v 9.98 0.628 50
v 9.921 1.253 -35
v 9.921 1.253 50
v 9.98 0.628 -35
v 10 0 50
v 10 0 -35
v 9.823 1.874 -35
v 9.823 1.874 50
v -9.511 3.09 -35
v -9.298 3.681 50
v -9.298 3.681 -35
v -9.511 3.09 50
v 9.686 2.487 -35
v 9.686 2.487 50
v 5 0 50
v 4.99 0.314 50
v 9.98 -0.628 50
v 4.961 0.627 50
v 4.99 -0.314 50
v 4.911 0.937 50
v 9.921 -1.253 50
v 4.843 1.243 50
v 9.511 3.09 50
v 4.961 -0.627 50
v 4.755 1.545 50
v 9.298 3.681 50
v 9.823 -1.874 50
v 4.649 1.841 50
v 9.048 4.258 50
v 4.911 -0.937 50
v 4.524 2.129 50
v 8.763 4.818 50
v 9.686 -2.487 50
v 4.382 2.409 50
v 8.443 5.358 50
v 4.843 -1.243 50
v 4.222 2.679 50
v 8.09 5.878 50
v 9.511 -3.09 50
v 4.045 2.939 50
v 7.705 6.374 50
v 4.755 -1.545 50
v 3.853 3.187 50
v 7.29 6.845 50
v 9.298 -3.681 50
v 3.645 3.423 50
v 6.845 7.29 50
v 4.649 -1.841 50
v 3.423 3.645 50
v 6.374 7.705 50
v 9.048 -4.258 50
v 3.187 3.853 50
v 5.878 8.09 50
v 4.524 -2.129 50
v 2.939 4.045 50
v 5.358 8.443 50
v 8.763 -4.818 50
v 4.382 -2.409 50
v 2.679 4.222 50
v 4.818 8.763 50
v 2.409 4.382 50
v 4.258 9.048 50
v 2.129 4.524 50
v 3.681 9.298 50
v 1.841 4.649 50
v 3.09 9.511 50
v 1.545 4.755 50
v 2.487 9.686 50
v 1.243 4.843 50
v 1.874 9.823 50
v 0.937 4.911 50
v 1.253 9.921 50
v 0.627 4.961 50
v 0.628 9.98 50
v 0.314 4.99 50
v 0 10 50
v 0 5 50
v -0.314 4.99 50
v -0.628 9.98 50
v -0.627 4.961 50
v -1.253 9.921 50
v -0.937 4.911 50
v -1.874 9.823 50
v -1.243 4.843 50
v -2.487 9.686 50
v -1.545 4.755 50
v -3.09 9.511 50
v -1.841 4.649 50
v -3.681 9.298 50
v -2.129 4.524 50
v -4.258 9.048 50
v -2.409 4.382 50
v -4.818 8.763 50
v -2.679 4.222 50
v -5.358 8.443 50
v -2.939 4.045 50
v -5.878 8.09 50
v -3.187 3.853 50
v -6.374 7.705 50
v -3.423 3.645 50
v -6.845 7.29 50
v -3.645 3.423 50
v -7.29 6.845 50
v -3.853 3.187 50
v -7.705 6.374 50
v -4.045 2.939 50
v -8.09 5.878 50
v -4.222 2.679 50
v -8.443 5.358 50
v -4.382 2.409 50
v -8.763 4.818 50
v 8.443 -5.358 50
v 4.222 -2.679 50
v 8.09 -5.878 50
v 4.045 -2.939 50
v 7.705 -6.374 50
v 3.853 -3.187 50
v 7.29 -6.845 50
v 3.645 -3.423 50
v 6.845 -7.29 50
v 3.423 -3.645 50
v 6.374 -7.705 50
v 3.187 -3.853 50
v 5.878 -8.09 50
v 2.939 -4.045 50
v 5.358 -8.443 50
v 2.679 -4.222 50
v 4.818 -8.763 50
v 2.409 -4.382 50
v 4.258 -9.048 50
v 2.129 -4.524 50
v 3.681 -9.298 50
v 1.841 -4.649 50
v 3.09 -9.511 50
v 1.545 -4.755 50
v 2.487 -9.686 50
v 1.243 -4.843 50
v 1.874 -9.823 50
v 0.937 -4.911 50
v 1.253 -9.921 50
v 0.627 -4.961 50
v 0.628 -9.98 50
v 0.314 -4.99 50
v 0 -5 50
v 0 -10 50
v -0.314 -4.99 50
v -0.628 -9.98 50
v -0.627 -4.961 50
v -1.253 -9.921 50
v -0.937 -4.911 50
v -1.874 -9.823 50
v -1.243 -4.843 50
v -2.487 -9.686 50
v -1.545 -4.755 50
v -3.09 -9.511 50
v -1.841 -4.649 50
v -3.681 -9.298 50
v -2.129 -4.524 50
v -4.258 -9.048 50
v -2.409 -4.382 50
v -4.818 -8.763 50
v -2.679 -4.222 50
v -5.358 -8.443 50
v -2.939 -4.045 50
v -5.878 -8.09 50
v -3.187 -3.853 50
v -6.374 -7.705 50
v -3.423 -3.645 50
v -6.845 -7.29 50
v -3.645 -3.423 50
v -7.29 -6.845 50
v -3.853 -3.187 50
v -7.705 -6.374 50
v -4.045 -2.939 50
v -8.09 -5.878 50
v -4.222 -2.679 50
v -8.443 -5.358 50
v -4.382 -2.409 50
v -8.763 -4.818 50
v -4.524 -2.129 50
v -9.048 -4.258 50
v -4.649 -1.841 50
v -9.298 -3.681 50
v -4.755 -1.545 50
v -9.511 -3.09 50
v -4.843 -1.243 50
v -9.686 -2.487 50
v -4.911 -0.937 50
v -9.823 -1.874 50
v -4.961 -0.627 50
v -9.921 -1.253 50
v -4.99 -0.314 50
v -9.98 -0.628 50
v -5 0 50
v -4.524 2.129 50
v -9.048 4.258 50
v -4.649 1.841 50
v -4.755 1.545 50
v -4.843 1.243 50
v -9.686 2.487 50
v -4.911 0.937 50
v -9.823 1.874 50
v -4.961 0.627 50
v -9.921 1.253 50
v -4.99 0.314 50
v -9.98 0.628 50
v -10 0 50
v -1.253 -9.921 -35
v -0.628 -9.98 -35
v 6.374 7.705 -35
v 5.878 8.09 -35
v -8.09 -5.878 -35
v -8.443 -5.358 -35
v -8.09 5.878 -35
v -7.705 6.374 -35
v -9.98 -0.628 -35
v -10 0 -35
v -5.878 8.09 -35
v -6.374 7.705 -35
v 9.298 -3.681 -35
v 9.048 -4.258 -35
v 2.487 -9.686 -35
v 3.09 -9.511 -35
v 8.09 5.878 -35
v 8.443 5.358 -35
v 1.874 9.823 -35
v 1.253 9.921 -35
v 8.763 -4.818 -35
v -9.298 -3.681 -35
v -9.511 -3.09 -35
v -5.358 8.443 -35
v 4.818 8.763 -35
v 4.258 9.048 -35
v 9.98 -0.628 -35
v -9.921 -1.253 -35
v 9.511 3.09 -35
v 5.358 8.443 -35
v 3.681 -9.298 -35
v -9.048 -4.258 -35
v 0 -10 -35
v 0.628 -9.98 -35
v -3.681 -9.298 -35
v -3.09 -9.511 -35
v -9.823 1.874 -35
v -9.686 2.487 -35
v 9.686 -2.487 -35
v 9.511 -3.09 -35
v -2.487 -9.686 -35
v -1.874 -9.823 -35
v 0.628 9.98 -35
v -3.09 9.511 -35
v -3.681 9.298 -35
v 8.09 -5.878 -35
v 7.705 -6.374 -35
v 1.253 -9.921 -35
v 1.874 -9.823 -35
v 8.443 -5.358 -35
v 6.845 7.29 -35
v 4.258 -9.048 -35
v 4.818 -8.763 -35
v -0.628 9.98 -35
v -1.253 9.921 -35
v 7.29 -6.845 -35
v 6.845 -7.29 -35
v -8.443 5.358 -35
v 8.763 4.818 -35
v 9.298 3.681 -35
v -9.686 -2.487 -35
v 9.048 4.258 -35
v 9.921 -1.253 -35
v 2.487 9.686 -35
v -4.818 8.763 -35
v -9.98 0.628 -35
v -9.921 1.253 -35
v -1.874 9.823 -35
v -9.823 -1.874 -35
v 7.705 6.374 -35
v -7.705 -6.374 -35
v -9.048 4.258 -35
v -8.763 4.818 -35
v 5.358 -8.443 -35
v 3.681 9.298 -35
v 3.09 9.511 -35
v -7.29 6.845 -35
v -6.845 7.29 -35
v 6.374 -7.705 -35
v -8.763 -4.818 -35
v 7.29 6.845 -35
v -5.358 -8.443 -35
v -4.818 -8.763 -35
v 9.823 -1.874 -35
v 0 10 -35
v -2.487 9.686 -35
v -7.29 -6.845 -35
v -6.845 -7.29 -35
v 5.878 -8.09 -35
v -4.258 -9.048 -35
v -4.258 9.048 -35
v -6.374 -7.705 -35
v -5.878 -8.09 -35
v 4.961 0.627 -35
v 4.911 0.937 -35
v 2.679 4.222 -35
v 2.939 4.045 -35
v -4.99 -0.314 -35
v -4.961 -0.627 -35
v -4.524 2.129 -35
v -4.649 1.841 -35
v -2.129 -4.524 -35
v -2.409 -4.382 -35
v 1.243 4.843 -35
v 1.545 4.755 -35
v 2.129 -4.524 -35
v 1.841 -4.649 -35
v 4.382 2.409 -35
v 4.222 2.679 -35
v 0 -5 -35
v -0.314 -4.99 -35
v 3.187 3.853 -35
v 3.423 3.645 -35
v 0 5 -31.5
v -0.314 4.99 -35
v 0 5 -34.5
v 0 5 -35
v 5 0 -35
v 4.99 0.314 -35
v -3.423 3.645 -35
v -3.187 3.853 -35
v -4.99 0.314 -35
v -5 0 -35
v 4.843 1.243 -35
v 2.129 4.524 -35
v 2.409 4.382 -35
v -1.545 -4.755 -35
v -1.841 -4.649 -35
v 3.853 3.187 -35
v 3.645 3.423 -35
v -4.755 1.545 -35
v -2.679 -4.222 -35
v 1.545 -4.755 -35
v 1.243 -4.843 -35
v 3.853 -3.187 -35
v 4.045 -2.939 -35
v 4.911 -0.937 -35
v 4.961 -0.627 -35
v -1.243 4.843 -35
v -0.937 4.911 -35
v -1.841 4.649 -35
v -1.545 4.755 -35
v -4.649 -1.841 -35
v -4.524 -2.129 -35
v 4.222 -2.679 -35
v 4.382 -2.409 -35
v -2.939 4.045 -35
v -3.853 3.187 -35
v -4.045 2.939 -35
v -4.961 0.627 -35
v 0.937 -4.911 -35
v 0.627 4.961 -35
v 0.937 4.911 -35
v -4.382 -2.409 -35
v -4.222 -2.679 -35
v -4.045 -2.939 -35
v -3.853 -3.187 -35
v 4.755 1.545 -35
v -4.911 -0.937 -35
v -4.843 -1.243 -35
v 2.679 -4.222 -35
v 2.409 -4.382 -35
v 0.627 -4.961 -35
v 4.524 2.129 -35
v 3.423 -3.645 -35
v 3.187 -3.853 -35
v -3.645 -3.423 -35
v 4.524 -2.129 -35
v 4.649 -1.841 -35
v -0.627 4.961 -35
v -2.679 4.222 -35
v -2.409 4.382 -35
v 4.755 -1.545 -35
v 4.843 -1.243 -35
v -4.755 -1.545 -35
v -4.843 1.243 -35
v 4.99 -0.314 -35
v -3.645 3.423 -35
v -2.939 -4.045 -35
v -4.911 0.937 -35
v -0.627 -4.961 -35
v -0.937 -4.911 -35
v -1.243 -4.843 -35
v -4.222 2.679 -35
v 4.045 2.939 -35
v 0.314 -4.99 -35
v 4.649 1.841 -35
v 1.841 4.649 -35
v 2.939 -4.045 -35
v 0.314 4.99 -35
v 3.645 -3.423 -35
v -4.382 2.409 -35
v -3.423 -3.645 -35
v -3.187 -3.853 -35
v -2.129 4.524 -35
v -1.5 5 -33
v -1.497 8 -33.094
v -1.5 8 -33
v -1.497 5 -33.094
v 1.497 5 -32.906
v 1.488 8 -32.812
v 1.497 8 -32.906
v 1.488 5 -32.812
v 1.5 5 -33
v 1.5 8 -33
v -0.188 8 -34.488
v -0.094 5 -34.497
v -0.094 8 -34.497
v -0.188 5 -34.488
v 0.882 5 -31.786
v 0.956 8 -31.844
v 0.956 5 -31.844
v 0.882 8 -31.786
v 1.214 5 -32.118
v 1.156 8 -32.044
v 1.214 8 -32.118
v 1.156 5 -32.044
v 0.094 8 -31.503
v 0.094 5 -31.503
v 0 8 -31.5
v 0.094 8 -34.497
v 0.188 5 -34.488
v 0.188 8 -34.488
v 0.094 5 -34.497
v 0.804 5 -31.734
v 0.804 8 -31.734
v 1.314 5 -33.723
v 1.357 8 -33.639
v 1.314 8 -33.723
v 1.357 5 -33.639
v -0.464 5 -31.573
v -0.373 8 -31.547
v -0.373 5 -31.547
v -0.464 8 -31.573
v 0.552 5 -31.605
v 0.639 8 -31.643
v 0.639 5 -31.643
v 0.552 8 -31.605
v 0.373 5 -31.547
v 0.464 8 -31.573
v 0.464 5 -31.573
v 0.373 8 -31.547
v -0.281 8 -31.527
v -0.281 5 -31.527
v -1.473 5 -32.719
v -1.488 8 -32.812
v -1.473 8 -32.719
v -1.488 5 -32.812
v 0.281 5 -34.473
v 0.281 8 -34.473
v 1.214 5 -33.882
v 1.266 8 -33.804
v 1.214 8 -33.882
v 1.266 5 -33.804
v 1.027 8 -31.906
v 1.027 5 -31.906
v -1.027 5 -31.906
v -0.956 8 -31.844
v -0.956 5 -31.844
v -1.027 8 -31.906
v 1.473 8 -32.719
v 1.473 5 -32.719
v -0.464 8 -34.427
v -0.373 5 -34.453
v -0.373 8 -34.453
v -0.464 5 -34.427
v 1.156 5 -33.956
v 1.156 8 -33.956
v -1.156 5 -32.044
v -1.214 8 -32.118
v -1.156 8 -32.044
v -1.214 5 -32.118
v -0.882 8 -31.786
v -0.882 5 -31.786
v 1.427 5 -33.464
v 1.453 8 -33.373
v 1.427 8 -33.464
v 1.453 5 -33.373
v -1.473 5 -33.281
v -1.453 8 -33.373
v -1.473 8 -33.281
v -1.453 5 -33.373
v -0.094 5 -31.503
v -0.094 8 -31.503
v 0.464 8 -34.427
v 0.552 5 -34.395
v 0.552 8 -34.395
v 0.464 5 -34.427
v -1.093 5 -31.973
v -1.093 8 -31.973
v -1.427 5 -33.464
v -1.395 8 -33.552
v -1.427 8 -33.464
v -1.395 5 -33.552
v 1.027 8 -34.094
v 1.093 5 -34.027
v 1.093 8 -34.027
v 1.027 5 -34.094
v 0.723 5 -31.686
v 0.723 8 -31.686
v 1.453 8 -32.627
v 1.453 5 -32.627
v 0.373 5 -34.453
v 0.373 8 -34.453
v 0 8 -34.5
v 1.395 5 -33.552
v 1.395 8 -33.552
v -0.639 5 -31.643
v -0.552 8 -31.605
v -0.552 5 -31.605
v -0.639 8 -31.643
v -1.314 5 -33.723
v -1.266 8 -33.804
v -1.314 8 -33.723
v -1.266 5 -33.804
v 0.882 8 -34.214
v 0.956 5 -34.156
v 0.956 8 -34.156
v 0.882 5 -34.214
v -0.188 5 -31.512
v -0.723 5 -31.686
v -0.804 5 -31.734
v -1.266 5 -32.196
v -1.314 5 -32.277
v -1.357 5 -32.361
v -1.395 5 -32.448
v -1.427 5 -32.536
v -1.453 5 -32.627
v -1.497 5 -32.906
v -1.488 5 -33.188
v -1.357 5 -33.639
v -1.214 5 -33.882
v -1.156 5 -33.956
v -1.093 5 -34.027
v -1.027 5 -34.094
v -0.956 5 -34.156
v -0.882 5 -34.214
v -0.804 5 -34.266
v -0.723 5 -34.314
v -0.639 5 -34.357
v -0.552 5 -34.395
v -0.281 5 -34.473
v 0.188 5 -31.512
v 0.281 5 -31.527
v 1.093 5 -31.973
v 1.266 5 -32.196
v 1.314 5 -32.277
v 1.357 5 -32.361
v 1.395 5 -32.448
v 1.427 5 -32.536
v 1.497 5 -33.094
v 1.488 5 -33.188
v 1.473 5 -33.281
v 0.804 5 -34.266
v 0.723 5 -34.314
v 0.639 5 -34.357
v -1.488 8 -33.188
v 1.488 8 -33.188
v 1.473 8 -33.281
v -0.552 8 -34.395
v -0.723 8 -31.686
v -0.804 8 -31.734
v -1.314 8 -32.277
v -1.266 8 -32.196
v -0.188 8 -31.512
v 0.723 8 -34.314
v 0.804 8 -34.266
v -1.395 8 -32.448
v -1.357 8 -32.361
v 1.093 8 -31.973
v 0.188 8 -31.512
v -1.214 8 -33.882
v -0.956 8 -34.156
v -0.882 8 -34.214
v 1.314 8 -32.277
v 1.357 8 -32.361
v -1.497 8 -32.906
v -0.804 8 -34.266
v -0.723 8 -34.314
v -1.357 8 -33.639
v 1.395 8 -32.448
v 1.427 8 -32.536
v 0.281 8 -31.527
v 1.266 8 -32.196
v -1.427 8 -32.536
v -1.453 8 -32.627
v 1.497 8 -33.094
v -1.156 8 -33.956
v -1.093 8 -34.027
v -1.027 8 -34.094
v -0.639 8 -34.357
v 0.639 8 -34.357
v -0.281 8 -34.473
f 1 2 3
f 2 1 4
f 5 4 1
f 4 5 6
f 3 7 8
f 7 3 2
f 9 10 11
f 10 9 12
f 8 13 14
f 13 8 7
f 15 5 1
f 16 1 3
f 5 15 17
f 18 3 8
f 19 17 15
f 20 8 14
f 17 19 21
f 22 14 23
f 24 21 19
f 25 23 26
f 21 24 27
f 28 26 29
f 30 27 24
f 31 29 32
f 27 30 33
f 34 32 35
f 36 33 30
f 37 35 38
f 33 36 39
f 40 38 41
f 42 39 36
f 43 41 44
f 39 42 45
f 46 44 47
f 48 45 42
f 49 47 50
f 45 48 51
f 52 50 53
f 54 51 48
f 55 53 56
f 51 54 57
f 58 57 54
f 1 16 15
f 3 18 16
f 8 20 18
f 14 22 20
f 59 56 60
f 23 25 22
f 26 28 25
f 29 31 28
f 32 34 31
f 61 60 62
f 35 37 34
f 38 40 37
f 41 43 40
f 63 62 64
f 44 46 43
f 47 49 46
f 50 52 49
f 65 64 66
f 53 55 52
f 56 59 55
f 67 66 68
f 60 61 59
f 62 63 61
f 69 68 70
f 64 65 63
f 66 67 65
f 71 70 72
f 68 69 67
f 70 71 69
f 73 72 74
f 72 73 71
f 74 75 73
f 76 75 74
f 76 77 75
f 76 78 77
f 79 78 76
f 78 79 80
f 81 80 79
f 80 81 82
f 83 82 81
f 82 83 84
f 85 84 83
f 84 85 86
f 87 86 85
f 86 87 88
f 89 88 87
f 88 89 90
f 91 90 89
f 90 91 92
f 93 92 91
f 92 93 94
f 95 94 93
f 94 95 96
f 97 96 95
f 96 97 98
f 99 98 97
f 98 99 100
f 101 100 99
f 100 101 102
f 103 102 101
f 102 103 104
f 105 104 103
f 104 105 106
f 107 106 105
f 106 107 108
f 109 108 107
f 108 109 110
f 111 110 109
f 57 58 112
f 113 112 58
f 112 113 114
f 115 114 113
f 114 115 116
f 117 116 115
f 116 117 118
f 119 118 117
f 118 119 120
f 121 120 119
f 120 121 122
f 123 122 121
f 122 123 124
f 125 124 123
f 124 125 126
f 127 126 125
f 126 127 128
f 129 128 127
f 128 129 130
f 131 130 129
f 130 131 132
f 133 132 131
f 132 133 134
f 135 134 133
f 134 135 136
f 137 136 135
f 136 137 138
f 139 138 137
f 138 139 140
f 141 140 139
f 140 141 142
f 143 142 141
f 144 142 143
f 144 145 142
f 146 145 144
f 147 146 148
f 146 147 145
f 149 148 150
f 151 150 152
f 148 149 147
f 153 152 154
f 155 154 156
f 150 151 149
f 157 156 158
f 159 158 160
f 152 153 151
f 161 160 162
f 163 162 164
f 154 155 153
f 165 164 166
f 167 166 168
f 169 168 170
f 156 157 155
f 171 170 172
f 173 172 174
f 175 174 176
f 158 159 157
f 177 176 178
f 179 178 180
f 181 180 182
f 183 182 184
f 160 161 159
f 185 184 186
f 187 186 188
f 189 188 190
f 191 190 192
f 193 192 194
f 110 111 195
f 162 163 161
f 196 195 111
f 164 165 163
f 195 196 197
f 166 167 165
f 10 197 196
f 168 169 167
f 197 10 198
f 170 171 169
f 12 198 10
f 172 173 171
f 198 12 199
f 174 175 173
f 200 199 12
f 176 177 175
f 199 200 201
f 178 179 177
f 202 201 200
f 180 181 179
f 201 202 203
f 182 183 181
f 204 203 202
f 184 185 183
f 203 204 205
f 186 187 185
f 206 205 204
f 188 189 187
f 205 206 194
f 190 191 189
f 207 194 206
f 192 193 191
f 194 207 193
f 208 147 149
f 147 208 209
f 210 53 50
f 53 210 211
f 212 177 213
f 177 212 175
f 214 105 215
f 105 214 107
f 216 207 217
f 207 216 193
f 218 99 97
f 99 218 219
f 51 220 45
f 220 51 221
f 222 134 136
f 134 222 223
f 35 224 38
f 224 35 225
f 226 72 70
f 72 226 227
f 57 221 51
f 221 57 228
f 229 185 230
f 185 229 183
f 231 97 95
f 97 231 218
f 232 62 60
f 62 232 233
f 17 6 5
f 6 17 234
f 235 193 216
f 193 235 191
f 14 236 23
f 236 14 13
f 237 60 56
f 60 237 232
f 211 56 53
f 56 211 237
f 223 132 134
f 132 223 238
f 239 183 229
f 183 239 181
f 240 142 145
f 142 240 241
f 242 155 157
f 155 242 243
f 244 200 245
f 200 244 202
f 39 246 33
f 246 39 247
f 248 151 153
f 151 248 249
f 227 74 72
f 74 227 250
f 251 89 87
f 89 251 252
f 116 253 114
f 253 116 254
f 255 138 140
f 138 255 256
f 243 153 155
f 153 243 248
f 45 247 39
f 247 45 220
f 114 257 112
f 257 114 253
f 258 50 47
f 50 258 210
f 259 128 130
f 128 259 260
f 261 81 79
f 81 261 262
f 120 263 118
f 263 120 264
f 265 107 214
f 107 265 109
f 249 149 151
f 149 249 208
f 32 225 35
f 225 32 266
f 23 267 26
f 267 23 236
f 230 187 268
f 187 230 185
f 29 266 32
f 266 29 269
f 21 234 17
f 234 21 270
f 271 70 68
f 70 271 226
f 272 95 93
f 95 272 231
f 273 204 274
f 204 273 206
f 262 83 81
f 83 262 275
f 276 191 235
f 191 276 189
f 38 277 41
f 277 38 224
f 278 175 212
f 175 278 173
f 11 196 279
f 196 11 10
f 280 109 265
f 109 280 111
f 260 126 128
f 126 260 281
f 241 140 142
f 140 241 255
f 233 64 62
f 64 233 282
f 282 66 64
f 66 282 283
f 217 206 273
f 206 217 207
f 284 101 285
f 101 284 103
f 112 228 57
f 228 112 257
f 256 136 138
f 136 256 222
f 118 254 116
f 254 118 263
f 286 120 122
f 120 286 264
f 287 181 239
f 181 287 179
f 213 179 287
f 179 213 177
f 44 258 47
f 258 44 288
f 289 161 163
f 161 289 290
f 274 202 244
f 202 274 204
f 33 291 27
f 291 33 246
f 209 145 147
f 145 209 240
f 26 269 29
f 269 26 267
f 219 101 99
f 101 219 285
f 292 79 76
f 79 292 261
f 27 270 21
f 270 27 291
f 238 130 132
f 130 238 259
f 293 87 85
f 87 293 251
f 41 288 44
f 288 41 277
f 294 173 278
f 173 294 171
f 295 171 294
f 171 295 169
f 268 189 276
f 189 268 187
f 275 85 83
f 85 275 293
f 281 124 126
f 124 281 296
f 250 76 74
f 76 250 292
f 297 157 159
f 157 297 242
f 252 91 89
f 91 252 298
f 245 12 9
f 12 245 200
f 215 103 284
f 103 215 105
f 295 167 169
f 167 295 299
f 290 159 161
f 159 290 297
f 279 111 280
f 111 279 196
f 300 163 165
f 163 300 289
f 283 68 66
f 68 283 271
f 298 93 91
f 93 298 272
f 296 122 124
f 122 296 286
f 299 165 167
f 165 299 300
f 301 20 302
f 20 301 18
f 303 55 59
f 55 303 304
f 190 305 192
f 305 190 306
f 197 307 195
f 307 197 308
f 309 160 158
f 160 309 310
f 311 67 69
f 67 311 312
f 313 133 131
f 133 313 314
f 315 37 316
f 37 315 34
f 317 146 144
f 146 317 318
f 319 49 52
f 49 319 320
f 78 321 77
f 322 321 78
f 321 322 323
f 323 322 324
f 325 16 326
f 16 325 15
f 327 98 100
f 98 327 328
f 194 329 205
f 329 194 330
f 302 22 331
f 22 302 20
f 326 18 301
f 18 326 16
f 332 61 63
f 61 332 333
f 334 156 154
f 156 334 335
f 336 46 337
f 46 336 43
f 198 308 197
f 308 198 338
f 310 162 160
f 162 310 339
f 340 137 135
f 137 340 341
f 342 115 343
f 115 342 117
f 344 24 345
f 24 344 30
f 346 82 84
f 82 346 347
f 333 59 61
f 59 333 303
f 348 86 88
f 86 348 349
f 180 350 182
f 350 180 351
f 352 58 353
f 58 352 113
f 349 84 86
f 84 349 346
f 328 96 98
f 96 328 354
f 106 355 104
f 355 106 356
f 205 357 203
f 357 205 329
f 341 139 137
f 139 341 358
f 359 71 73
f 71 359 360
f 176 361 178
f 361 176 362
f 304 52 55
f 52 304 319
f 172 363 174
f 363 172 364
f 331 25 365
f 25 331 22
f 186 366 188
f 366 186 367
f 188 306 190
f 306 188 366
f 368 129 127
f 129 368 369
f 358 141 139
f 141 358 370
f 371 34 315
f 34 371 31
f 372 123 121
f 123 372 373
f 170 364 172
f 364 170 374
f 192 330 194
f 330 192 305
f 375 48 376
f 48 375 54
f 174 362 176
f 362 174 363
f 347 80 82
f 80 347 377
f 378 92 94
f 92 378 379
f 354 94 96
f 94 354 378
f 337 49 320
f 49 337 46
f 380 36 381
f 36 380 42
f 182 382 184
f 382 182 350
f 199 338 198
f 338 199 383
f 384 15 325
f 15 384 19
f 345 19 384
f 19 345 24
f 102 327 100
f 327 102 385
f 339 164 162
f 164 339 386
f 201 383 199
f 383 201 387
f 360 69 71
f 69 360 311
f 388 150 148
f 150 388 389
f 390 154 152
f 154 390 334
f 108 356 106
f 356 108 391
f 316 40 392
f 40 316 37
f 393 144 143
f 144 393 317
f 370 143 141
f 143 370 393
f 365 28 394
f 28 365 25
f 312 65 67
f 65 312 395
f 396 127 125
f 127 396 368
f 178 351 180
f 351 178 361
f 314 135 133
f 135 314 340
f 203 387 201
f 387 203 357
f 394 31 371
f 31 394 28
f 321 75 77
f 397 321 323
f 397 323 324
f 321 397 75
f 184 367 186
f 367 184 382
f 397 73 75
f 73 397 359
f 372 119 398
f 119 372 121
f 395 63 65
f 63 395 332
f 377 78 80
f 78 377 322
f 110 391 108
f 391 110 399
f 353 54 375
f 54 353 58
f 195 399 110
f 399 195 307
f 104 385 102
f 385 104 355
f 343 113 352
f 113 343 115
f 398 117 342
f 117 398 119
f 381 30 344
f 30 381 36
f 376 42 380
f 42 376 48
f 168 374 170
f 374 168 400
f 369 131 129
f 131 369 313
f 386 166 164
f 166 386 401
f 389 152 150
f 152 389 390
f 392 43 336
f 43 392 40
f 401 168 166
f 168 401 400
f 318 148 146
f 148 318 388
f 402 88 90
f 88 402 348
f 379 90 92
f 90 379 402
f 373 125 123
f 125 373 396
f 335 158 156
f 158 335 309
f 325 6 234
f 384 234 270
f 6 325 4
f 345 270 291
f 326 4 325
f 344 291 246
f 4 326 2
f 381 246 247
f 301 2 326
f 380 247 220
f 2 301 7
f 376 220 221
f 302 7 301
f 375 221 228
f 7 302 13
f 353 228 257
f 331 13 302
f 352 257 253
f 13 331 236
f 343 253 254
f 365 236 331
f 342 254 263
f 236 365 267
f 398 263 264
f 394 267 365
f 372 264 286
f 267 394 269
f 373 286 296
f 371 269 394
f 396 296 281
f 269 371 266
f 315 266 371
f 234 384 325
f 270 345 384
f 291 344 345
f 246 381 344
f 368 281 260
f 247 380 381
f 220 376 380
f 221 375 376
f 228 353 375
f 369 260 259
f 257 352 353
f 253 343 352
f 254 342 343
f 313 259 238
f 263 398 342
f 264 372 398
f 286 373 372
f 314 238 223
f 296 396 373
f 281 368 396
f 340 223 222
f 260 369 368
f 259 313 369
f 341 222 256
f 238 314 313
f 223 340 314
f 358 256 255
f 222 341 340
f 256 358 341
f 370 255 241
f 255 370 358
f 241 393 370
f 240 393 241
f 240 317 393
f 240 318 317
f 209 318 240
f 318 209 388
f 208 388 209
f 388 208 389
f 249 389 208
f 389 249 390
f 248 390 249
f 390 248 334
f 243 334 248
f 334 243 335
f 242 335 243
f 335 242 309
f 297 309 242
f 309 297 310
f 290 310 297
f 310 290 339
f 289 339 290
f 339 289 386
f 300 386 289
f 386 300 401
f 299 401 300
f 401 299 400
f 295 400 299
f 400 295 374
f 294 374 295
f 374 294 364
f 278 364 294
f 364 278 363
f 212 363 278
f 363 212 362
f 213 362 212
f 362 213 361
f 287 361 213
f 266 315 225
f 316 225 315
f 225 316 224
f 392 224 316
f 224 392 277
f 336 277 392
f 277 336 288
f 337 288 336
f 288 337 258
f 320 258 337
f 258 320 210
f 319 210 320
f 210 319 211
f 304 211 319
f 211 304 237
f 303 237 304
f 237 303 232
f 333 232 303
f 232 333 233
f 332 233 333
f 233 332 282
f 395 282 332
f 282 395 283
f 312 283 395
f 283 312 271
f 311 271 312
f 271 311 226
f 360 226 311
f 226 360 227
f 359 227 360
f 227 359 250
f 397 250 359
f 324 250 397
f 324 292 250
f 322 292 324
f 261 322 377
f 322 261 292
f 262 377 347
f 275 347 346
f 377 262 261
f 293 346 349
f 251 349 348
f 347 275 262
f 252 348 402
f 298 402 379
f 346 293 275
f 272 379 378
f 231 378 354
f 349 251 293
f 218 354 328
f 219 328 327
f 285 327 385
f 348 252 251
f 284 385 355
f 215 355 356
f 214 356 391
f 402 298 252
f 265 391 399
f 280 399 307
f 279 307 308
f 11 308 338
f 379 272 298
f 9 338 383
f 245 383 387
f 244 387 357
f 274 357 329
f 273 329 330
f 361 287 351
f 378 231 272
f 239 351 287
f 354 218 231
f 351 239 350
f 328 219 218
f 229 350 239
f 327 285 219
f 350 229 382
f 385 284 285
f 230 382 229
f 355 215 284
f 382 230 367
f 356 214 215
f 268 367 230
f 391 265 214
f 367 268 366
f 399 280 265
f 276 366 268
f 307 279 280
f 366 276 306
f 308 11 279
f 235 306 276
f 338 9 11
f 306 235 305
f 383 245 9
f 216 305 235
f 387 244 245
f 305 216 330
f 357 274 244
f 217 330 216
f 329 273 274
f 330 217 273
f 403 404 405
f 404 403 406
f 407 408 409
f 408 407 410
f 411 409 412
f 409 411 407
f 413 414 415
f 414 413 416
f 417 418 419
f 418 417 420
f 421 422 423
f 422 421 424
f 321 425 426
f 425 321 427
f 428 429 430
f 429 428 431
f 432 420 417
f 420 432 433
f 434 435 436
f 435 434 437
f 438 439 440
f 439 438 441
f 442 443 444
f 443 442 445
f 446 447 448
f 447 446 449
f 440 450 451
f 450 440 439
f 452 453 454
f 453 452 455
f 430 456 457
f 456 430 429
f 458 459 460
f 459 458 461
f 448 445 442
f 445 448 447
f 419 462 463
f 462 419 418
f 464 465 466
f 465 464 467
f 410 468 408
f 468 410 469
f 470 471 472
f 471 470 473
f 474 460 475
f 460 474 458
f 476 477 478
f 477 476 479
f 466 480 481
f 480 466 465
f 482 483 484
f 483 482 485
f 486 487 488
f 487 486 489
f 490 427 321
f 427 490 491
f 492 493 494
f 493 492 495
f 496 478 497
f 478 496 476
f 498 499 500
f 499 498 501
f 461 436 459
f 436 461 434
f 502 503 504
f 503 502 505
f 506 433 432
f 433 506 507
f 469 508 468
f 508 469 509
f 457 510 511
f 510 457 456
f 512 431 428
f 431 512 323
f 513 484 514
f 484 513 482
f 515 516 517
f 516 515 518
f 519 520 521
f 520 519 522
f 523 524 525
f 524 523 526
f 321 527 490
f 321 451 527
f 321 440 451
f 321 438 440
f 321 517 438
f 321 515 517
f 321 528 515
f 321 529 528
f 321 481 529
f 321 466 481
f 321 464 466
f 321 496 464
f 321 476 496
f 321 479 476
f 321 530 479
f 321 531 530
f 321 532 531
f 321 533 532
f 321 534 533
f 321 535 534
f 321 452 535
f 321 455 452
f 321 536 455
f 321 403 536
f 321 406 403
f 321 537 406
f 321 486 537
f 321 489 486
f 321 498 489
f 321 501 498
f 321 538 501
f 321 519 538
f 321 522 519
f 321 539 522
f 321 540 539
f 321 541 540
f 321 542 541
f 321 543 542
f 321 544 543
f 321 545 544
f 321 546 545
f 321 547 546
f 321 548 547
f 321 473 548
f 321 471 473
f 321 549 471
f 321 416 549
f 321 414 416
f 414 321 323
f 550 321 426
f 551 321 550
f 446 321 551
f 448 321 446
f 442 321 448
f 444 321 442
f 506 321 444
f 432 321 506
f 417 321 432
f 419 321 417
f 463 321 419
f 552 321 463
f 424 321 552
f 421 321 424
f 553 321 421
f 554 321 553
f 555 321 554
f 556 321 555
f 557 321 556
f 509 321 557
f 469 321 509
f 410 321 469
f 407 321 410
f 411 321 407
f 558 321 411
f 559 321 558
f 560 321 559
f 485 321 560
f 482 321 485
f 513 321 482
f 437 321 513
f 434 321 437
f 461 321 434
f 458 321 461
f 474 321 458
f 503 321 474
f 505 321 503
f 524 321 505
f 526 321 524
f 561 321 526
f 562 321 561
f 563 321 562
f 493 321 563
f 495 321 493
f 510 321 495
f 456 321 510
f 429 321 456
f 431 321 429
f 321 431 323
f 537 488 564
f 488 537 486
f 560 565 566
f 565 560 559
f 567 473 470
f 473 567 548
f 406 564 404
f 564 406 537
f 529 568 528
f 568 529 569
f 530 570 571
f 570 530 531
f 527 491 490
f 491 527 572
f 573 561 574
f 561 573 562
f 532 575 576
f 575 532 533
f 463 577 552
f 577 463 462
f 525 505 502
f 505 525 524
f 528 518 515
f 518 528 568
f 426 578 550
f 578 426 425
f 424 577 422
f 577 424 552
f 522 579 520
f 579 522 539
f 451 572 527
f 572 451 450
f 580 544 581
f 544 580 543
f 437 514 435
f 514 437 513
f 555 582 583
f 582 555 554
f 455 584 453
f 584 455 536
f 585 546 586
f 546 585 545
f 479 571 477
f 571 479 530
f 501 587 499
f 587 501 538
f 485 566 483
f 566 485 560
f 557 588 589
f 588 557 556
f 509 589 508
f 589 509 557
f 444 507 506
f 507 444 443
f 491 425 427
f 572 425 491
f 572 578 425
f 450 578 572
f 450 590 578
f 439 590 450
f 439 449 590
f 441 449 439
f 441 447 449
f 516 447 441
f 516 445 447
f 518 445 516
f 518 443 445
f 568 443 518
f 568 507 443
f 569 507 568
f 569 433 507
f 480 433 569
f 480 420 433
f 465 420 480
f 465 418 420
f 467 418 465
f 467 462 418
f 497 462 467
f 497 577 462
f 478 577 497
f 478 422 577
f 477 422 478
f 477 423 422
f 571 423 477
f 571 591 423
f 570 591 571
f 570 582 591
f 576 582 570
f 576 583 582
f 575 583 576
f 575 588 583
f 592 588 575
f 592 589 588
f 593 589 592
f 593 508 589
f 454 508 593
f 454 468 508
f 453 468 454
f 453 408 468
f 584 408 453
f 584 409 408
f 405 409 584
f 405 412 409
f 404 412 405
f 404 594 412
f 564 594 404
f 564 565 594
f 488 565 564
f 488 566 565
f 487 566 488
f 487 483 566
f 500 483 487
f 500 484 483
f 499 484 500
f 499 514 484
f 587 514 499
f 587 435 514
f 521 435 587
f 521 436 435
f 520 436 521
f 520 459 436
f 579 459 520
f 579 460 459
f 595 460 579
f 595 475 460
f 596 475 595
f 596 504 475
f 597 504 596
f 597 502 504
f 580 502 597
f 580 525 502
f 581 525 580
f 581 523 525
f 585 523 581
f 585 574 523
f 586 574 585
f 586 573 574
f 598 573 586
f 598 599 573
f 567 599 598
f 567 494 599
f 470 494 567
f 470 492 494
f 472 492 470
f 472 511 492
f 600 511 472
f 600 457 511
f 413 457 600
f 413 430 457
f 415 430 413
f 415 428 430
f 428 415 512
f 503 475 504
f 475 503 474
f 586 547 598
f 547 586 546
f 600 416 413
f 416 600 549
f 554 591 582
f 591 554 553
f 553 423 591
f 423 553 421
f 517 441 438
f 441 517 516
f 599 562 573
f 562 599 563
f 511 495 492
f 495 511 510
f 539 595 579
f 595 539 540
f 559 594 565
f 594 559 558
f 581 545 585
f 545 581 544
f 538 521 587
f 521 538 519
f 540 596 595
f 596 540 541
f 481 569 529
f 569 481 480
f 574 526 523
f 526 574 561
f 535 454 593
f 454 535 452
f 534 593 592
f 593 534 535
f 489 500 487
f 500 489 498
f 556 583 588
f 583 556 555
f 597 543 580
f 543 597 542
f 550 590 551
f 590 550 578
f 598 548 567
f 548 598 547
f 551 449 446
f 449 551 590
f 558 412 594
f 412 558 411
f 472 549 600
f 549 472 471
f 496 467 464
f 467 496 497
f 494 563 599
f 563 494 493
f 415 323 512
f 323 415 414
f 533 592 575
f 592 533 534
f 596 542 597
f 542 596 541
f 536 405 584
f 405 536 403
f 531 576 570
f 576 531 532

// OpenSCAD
// Parameters for the components
module central_shaft() {
    // Modified to remove tapering and make it uniformly cylindrical
    difference() {
        cylinder(h = 30, r = 10, $fn = 100); // Outer cylinder
        translate([0, 0, -1]) cylinder(h = 32, r = 5, $fn = 100); // Inner hollow
    }
}

module input_shaft() {
    // Modified to reduce tapering and add a bolt hole near one end
    difference() {
        cylinder(h = 25, r = 10, $fn = 100); // Uniform cylindrical shape
        translate([0, 0, -1]) cylinder(h = 27, r = 5, $fn = 100); // Inner hollow
        translate([0, 8, 2]) rotate([90, 0, 0]) cylinder(h = 3, r = 1.5, $fn = 100); // Bolt hole near one end
    }
}

module output_shaft() {
    // Modified to add a bolt hole near one end and adjust the length
    difference() {
        cylinder(h = 35, r = 10, $fn = 100); // Adjusted length to match original model
        translate([0, 0, -1]) cylinder(h = 37, r = 5, $fn = 100); // Inner hollow
        translate([0, 8, 2]) rotate([90, 0, 0]) cylinder(h = 3, r = 1.5, $fn = 100); // Bolt hole near one end
    }
}

// Assembly of the flexible coupling
module flexible_coupling() {
    translate([0, 0, 25]) input_shaft(); // Layer 1: Input shaft
    central_shaft(); // Layer 2: Central shaft
    translate([0, 0, -35]) output_shaft(); // Layer 3: Output shaft
}

// Render the model
flexible_coupling();
